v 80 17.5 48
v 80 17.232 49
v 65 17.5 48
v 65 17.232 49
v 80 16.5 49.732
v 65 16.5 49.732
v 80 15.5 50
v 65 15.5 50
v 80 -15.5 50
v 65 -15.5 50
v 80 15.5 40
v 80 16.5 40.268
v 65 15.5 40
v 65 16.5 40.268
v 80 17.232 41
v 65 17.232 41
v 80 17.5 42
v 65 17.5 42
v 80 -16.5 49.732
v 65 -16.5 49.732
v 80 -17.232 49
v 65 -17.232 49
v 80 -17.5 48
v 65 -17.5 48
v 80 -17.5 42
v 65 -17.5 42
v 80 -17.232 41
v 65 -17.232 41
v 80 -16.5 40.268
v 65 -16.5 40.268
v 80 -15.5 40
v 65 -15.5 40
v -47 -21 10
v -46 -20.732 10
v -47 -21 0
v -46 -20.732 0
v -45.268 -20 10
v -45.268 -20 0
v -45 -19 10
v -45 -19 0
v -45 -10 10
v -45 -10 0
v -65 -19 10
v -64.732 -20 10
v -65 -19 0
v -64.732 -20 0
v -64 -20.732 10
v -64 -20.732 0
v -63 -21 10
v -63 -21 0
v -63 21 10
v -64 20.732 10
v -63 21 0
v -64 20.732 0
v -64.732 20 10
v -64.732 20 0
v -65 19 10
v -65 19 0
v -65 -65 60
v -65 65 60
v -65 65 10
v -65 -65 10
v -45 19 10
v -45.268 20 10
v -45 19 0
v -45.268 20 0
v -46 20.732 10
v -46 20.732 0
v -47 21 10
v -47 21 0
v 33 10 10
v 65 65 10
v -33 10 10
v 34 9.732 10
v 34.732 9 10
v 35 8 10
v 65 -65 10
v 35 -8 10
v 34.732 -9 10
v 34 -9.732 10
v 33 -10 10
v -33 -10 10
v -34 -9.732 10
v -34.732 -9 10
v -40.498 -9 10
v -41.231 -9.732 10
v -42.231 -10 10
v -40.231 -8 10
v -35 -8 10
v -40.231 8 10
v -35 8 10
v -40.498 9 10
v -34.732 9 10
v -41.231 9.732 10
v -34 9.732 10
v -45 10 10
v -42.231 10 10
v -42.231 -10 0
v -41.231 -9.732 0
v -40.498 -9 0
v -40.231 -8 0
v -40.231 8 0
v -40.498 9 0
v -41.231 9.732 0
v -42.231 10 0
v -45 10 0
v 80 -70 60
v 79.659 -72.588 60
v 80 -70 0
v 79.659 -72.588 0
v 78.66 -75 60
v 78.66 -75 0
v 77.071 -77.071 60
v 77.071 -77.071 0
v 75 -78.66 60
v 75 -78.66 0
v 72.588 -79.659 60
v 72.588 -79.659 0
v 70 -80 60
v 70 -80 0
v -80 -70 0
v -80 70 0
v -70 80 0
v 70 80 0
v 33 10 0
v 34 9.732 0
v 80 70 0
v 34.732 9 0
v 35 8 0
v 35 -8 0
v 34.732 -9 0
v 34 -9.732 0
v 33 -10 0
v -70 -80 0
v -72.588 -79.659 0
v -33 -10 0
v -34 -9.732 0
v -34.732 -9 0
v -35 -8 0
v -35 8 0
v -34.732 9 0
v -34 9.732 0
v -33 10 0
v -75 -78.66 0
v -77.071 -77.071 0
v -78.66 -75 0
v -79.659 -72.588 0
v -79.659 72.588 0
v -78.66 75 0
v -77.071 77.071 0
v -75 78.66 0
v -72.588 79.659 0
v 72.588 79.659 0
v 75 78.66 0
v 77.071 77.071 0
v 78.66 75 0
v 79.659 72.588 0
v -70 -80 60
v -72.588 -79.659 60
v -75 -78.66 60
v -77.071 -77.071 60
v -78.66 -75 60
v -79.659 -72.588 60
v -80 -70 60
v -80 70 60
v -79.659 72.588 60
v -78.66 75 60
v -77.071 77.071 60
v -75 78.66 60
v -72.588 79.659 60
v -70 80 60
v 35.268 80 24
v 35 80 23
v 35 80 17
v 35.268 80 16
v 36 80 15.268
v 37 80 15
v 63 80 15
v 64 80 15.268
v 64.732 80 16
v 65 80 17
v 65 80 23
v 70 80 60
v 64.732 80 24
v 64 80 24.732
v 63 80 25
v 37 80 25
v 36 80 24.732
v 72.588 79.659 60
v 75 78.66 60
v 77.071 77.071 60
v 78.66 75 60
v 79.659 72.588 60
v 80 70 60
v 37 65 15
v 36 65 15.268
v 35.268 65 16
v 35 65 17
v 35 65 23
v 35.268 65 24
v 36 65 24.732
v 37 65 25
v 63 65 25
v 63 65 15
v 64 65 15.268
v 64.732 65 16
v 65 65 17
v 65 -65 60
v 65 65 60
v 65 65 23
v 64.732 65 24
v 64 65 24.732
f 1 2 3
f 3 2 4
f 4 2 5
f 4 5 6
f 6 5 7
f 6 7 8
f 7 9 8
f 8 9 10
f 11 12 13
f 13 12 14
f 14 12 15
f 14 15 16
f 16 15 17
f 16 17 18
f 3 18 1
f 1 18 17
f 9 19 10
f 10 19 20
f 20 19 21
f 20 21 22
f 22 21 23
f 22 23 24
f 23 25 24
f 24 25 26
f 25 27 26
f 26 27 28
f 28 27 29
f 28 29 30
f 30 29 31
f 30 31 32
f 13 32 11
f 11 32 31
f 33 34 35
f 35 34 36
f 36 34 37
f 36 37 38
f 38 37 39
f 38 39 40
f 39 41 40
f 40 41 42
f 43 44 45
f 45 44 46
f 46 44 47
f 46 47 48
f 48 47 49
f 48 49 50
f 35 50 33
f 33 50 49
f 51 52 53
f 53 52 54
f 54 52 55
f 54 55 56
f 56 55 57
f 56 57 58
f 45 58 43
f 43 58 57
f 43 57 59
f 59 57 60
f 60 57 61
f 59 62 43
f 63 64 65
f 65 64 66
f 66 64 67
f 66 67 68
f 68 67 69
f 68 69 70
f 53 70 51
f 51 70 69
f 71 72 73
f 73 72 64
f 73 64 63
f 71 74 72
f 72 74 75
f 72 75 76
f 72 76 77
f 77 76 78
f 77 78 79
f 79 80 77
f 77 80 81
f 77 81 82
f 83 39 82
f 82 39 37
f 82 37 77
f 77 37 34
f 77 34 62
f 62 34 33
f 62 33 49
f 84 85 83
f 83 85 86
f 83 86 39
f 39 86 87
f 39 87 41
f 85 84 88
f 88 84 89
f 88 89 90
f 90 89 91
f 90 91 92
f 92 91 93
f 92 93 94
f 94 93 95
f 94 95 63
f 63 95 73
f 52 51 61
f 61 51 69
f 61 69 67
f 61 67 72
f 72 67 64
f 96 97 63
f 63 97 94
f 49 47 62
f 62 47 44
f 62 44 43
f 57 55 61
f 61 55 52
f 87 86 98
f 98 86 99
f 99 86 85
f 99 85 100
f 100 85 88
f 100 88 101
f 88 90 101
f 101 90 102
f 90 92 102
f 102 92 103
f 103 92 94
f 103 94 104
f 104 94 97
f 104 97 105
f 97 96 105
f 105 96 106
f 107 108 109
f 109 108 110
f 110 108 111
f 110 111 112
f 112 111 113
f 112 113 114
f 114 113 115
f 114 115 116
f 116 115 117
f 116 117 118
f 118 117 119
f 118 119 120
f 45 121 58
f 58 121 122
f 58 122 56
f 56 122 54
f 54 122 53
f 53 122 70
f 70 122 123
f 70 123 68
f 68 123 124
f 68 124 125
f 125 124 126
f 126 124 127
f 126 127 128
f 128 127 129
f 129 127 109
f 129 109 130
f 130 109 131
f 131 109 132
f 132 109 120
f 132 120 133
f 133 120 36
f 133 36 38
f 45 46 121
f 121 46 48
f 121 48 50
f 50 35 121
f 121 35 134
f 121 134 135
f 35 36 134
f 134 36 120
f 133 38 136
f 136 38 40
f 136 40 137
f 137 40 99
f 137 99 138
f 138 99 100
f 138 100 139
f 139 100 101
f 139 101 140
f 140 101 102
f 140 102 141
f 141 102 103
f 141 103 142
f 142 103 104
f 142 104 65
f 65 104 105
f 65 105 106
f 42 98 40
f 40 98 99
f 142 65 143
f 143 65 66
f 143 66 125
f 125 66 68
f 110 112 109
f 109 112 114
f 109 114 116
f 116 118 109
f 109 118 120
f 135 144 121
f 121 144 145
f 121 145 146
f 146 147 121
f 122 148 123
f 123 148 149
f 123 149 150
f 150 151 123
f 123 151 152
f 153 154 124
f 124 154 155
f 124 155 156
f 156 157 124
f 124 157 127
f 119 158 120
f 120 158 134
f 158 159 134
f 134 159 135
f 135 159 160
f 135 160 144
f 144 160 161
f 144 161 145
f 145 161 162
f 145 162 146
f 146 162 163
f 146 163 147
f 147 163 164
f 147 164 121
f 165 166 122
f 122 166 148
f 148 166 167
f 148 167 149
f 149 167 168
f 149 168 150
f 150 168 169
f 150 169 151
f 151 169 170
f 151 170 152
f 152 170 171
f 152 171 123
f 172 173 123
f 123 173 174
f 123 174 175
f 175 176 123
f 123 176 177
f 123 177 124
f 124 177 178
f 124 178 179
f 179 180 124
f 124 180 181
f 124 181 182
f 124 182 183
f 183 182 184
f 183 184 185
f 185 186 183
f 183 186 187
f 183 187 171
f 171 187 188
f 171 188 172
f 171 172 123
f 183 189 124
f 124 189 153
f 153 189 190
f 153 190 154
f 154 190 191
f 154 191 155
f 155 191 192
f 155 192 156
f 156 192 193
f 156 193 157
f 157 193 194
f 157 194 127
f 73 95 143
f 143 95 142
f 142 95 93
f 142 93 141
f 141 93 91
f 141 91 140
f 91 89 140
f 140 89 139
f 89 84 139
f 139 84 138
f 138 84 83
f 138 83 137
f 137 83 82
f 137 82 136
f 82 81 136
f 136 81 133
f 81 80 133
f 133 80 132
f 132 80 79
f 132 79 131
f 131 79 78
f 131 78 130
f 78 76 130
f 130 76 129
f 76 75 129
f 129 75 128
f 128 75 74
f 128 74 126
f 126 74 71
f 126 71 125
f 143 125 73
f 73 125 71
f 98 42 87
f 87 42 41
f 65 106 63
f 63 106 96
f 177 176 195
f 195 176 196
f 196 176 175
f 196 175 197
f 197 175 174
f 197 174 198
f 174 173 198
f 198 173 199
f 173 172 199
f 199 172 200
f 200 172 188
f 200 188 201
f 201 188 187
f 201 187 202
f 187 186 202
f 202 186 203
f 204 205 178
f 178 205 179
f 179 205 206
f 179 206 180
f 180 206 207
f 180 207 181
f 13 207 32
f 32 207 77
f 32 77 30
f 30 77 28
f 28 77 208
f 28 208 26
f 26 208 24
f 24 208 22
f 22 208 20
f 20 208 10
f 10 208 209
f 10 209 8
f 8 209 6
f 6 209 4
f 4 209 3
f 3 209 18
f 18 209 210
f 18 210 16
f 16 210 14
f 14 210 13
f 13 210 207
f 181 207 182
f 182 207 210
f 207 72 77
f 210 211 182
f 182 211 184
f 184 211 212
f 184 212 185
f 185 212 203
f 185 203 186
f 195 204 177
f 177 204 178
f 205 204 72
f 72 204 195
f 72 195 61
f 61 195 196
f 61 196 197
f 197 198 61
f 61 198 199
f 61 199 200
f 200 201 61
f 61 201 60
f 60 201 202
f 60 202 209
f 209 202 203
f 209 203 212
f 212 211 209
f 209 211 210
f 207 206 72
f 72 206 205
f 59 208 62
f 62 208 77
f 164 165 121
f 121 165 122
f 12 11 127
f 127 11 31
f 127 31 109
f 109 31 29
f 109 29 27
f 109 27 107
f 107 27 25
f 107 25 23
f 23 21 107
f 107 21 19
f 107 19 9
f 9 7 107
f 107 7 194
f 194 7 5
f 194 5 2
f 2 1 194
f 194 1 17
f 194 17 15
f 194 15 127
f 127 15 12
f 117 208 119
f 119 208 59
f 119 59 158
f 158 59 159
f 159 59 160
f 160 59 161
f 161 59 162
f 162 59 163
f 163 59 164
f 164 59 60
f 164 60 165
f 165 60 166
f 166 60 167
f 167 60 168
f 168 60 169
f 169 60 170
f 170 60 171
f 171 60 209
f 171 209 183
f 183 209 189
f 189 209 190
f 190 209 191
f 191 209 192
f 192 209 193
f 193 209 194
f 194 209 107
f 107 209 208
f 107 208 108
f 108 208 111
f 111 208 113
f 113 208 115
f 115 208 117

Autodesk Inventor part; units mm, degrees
ref_plane "YZ Plane" through (0, 0, 0) normal (1, 0, 0) x (0, 1, 0)
ref_plane "XZ Plane" through (0, 0, 0) normal (0, 1, 0) x (-1, 0, 0)
ref_plane "XY Plane" through (0, 0, 0) normal (0, 0, 1) x (1, 0, 0)
sketch "Sketch1" plane through (0, 0, 0) normal (0, 0, 1) x (1, 0, 0)
  line L0 (-80, -80) -> (80, -80)
  line L1 (80, -80) -> (80, 80)
  line L2 (80, 80) -> (-80, 80)
  line L3 (-80, 80) -> (-80, -80)
  line L4 (-80, -80) -> (80, 80) construction
  line L5 (80, -80) -> (-80, 80) construction
  point P0 (0, 0)
  dimension "d0" = 160
  dimension "d1" = 160
extrude "Extrusion1" add sketch "Sketch1" along normal blind 60
sketch "Sketch2" plane through (0, 0, 60) normal (0, 0, 1) x (1, 0, 0)
  line L0 (-65, 65) -> (65, 65)
  line L1 (65, 65) -> (65, -65)
  line L2 (65, -65) -> (-65, -65)
  line L3 (-65, -65) -> (-65, 65)
  point P0 (0, 0)
  point P1 (-80, 80)
  point P2 (-80, -80)
  point P3 (80, -80)
extrude "Extrusion2" cut sketch "Sketch2" against normal blind 50
sketch "Sketch18" plane through (0, 0, 0) normal (0, 0, -1) x (-1, 0, 0)
  line L0 (80, 80) -> (80, -80)
  line L1 (80, 80) -> (80, -80) projected
  line L2 (45, 20) -> (65, 20)
  line L3 (65, 20) -> (65, -20)
  line L4 (65, -20) -> (45, -20)
  line L5 (45, -20) -> (45, 20)
  line L6 (45, 20) -> (65, -20) construction
  line L7 (65, 20) -> (45, -20) construction
  point P0 (0, 0)
  dimension "d40" = 20
  dimension "d41" = 40
extrude "Extrusion5" cut sketch "Sketch18" against normal blind 20
sketch "Sketch26" plane through (-78, 80, 0) normal (0, 1, 0) x (1, 0, 0)
  line L0 (143, -12) -> (143, -18) projected
  line L1 (143, -15) -> (113, -15)
  line L2 (113, -15) -> (113, -25)
  line L3 (113, -25) -> (143, -25)
  line L4 (143, -25) -> (143, -15)
  point P0 (78, 0)
  dimension "d65" = 30
  dimension "d66" = 10
extrude "Extrusion9" cut sketch "Sketch26" against normal blind 20
fillet "Fillet4" radius 2 4 edges at (65, 72.5, 25) (65, 72.5, 15) (35, 72.5, 25) (35, 72.5, 15)
sketch "Sketch36" plane through (0, 0, 10) normal (0, 0, 1) x (1, 0, 0)
  line L0 (0, -10) -> (35, -10)
  line L1 (35, -10) -> (35, 0)
  line L2 (-35, 10) -> (35, 10)
  line L3 (35, 10) -> (35, -10)
  line L4 (35, -10) -> (-35, -10)
  line L5 (-35, -10) -> (-35, 10)
  line L6 (-35, 10) -> (35, -10) construction
  line L7 (35, 10) -> (-35, -10) construction
  point P0 (0, 0)
  dimension "d75" = 10
  dimension "d76" = 35
  dimension "d77" = 10
extrude "Extrusion11" cut sketch "Sketch36" against normal blind 20
sketch "Sketch37" plane through (0, 0, 10) normal (0, 0, 1) x (1, 0, 0)
  line L0 (-49.7695, 10) -> (-40.2305, 10)
  line L1 (-40.2305, 10) -> (-40.2305, -10)
  line L2 (-40.2305, -10) -> (-49.7695, -10)
  line L3 (-49.7695, -10) -> (-49.7695, 10)
  line L4 (-45, 20) -> (-45, -20) projected
  line L5 (-49.7695, 10) -> (-40.2305, -10) construction
  line L6 (-40.2305, 10) -> (-49.7695, -10) construction
  point P0 (0, 0)
  point P1 (-45, 0)
  point P2 (-45, 18)
  point P3 (-45, -18)
extrude "Extrusion12" cut sketch "Sketch37" against normal blind 20
fillet "Fillet6" radius 2 4 edges at (35, 10, 5) (35, -10, 5) (-35, -10, 5) (-35, 10, 5)
fillet "Fillet7" radius 10 4 edges at (80, 80, 30) (-80, 80, 30) (-80, -80, 30) (80, -80, 30)
fillet "Fillet8" radius 2 2 edges at (-40.2305, 10, 5) (-40.2305, -10, 5)
sketch "Sketch46" plane through (0, 0, 10) normal (0, 0, 1) x (1, 0, 0)
  line L0 (-65, 20) -> (-45, 20) projected
  line L1 (-45, 20) -> (-45, 21)
  line L2 (-45, -20) -> (-45, -10) projected
  line L3 (-45, -20) -> (-45, -21)
  line L4 (-45, -21) -> (-65, -21)
  line L5 (-65, -21) -> (-65, -20)
  line L6 (-65, -20) -> (-45, -20)
  line L7 (-45, -20) -> (-45, -21)
  line L8 (-45, 21) -> (-65, 21)
  line L9 (-65, 21) -> (-65, 20)
  line L10 (-65, 20) -> (-45, 20)
  line L11 (-45, 20) -> (-45, 21)
  point P0 (0, 0)
  dimension "d87" = 1
  dimension "d88" = 1
  dimension "d89" = 20
  dimension "d90" = 1
  dimension "d91" = 20
  dimension "d92" = 1
extrude "Extrusion13" cut sketch "Sketch46" against normal blind 10
fillet "Fillet9" radius 2 4 edges at (-45, 21, 5) (-65, 21, 5) (-65, -21, 5) (-45, -21, 5)
sketch "Sketch51" plane through (80, -70, 0) normal (1, 0, 0) x (0, 0, -1)
  line L0 (-60, 5) -> (-60, 135) projected
  line L1 (-60, 70) -> (-45, 70)
  line L2 (-50, 52.5) -> (-40, 52.5)
  line L3 (-40, 52.5) -> (-40, 87.5)
  line L4 (-40, 87.5) -> (-50, 87.5)
  line L5 (-50, 87.5) -> (-50, 52.5)
  line L6 (-50, 52.5) -> (-40, 87.5) construction
  line L7 (-40, 52.5) -> (-50, 87.5) construction
  point P0 (0, 70)
  dimension "d103" = 15
  dimension "d104" = 10
  dimension "d105" = 35
extrude "Extrusion14" cut sketch "Sketch51" against normal blind 30
fillet "Fillet10" radius 2 4 edges at (72.5, -17.5, 40) (72.5, -17.5, 50) (72.5, 17.5, 40) (72.5, 17.5, 50)
